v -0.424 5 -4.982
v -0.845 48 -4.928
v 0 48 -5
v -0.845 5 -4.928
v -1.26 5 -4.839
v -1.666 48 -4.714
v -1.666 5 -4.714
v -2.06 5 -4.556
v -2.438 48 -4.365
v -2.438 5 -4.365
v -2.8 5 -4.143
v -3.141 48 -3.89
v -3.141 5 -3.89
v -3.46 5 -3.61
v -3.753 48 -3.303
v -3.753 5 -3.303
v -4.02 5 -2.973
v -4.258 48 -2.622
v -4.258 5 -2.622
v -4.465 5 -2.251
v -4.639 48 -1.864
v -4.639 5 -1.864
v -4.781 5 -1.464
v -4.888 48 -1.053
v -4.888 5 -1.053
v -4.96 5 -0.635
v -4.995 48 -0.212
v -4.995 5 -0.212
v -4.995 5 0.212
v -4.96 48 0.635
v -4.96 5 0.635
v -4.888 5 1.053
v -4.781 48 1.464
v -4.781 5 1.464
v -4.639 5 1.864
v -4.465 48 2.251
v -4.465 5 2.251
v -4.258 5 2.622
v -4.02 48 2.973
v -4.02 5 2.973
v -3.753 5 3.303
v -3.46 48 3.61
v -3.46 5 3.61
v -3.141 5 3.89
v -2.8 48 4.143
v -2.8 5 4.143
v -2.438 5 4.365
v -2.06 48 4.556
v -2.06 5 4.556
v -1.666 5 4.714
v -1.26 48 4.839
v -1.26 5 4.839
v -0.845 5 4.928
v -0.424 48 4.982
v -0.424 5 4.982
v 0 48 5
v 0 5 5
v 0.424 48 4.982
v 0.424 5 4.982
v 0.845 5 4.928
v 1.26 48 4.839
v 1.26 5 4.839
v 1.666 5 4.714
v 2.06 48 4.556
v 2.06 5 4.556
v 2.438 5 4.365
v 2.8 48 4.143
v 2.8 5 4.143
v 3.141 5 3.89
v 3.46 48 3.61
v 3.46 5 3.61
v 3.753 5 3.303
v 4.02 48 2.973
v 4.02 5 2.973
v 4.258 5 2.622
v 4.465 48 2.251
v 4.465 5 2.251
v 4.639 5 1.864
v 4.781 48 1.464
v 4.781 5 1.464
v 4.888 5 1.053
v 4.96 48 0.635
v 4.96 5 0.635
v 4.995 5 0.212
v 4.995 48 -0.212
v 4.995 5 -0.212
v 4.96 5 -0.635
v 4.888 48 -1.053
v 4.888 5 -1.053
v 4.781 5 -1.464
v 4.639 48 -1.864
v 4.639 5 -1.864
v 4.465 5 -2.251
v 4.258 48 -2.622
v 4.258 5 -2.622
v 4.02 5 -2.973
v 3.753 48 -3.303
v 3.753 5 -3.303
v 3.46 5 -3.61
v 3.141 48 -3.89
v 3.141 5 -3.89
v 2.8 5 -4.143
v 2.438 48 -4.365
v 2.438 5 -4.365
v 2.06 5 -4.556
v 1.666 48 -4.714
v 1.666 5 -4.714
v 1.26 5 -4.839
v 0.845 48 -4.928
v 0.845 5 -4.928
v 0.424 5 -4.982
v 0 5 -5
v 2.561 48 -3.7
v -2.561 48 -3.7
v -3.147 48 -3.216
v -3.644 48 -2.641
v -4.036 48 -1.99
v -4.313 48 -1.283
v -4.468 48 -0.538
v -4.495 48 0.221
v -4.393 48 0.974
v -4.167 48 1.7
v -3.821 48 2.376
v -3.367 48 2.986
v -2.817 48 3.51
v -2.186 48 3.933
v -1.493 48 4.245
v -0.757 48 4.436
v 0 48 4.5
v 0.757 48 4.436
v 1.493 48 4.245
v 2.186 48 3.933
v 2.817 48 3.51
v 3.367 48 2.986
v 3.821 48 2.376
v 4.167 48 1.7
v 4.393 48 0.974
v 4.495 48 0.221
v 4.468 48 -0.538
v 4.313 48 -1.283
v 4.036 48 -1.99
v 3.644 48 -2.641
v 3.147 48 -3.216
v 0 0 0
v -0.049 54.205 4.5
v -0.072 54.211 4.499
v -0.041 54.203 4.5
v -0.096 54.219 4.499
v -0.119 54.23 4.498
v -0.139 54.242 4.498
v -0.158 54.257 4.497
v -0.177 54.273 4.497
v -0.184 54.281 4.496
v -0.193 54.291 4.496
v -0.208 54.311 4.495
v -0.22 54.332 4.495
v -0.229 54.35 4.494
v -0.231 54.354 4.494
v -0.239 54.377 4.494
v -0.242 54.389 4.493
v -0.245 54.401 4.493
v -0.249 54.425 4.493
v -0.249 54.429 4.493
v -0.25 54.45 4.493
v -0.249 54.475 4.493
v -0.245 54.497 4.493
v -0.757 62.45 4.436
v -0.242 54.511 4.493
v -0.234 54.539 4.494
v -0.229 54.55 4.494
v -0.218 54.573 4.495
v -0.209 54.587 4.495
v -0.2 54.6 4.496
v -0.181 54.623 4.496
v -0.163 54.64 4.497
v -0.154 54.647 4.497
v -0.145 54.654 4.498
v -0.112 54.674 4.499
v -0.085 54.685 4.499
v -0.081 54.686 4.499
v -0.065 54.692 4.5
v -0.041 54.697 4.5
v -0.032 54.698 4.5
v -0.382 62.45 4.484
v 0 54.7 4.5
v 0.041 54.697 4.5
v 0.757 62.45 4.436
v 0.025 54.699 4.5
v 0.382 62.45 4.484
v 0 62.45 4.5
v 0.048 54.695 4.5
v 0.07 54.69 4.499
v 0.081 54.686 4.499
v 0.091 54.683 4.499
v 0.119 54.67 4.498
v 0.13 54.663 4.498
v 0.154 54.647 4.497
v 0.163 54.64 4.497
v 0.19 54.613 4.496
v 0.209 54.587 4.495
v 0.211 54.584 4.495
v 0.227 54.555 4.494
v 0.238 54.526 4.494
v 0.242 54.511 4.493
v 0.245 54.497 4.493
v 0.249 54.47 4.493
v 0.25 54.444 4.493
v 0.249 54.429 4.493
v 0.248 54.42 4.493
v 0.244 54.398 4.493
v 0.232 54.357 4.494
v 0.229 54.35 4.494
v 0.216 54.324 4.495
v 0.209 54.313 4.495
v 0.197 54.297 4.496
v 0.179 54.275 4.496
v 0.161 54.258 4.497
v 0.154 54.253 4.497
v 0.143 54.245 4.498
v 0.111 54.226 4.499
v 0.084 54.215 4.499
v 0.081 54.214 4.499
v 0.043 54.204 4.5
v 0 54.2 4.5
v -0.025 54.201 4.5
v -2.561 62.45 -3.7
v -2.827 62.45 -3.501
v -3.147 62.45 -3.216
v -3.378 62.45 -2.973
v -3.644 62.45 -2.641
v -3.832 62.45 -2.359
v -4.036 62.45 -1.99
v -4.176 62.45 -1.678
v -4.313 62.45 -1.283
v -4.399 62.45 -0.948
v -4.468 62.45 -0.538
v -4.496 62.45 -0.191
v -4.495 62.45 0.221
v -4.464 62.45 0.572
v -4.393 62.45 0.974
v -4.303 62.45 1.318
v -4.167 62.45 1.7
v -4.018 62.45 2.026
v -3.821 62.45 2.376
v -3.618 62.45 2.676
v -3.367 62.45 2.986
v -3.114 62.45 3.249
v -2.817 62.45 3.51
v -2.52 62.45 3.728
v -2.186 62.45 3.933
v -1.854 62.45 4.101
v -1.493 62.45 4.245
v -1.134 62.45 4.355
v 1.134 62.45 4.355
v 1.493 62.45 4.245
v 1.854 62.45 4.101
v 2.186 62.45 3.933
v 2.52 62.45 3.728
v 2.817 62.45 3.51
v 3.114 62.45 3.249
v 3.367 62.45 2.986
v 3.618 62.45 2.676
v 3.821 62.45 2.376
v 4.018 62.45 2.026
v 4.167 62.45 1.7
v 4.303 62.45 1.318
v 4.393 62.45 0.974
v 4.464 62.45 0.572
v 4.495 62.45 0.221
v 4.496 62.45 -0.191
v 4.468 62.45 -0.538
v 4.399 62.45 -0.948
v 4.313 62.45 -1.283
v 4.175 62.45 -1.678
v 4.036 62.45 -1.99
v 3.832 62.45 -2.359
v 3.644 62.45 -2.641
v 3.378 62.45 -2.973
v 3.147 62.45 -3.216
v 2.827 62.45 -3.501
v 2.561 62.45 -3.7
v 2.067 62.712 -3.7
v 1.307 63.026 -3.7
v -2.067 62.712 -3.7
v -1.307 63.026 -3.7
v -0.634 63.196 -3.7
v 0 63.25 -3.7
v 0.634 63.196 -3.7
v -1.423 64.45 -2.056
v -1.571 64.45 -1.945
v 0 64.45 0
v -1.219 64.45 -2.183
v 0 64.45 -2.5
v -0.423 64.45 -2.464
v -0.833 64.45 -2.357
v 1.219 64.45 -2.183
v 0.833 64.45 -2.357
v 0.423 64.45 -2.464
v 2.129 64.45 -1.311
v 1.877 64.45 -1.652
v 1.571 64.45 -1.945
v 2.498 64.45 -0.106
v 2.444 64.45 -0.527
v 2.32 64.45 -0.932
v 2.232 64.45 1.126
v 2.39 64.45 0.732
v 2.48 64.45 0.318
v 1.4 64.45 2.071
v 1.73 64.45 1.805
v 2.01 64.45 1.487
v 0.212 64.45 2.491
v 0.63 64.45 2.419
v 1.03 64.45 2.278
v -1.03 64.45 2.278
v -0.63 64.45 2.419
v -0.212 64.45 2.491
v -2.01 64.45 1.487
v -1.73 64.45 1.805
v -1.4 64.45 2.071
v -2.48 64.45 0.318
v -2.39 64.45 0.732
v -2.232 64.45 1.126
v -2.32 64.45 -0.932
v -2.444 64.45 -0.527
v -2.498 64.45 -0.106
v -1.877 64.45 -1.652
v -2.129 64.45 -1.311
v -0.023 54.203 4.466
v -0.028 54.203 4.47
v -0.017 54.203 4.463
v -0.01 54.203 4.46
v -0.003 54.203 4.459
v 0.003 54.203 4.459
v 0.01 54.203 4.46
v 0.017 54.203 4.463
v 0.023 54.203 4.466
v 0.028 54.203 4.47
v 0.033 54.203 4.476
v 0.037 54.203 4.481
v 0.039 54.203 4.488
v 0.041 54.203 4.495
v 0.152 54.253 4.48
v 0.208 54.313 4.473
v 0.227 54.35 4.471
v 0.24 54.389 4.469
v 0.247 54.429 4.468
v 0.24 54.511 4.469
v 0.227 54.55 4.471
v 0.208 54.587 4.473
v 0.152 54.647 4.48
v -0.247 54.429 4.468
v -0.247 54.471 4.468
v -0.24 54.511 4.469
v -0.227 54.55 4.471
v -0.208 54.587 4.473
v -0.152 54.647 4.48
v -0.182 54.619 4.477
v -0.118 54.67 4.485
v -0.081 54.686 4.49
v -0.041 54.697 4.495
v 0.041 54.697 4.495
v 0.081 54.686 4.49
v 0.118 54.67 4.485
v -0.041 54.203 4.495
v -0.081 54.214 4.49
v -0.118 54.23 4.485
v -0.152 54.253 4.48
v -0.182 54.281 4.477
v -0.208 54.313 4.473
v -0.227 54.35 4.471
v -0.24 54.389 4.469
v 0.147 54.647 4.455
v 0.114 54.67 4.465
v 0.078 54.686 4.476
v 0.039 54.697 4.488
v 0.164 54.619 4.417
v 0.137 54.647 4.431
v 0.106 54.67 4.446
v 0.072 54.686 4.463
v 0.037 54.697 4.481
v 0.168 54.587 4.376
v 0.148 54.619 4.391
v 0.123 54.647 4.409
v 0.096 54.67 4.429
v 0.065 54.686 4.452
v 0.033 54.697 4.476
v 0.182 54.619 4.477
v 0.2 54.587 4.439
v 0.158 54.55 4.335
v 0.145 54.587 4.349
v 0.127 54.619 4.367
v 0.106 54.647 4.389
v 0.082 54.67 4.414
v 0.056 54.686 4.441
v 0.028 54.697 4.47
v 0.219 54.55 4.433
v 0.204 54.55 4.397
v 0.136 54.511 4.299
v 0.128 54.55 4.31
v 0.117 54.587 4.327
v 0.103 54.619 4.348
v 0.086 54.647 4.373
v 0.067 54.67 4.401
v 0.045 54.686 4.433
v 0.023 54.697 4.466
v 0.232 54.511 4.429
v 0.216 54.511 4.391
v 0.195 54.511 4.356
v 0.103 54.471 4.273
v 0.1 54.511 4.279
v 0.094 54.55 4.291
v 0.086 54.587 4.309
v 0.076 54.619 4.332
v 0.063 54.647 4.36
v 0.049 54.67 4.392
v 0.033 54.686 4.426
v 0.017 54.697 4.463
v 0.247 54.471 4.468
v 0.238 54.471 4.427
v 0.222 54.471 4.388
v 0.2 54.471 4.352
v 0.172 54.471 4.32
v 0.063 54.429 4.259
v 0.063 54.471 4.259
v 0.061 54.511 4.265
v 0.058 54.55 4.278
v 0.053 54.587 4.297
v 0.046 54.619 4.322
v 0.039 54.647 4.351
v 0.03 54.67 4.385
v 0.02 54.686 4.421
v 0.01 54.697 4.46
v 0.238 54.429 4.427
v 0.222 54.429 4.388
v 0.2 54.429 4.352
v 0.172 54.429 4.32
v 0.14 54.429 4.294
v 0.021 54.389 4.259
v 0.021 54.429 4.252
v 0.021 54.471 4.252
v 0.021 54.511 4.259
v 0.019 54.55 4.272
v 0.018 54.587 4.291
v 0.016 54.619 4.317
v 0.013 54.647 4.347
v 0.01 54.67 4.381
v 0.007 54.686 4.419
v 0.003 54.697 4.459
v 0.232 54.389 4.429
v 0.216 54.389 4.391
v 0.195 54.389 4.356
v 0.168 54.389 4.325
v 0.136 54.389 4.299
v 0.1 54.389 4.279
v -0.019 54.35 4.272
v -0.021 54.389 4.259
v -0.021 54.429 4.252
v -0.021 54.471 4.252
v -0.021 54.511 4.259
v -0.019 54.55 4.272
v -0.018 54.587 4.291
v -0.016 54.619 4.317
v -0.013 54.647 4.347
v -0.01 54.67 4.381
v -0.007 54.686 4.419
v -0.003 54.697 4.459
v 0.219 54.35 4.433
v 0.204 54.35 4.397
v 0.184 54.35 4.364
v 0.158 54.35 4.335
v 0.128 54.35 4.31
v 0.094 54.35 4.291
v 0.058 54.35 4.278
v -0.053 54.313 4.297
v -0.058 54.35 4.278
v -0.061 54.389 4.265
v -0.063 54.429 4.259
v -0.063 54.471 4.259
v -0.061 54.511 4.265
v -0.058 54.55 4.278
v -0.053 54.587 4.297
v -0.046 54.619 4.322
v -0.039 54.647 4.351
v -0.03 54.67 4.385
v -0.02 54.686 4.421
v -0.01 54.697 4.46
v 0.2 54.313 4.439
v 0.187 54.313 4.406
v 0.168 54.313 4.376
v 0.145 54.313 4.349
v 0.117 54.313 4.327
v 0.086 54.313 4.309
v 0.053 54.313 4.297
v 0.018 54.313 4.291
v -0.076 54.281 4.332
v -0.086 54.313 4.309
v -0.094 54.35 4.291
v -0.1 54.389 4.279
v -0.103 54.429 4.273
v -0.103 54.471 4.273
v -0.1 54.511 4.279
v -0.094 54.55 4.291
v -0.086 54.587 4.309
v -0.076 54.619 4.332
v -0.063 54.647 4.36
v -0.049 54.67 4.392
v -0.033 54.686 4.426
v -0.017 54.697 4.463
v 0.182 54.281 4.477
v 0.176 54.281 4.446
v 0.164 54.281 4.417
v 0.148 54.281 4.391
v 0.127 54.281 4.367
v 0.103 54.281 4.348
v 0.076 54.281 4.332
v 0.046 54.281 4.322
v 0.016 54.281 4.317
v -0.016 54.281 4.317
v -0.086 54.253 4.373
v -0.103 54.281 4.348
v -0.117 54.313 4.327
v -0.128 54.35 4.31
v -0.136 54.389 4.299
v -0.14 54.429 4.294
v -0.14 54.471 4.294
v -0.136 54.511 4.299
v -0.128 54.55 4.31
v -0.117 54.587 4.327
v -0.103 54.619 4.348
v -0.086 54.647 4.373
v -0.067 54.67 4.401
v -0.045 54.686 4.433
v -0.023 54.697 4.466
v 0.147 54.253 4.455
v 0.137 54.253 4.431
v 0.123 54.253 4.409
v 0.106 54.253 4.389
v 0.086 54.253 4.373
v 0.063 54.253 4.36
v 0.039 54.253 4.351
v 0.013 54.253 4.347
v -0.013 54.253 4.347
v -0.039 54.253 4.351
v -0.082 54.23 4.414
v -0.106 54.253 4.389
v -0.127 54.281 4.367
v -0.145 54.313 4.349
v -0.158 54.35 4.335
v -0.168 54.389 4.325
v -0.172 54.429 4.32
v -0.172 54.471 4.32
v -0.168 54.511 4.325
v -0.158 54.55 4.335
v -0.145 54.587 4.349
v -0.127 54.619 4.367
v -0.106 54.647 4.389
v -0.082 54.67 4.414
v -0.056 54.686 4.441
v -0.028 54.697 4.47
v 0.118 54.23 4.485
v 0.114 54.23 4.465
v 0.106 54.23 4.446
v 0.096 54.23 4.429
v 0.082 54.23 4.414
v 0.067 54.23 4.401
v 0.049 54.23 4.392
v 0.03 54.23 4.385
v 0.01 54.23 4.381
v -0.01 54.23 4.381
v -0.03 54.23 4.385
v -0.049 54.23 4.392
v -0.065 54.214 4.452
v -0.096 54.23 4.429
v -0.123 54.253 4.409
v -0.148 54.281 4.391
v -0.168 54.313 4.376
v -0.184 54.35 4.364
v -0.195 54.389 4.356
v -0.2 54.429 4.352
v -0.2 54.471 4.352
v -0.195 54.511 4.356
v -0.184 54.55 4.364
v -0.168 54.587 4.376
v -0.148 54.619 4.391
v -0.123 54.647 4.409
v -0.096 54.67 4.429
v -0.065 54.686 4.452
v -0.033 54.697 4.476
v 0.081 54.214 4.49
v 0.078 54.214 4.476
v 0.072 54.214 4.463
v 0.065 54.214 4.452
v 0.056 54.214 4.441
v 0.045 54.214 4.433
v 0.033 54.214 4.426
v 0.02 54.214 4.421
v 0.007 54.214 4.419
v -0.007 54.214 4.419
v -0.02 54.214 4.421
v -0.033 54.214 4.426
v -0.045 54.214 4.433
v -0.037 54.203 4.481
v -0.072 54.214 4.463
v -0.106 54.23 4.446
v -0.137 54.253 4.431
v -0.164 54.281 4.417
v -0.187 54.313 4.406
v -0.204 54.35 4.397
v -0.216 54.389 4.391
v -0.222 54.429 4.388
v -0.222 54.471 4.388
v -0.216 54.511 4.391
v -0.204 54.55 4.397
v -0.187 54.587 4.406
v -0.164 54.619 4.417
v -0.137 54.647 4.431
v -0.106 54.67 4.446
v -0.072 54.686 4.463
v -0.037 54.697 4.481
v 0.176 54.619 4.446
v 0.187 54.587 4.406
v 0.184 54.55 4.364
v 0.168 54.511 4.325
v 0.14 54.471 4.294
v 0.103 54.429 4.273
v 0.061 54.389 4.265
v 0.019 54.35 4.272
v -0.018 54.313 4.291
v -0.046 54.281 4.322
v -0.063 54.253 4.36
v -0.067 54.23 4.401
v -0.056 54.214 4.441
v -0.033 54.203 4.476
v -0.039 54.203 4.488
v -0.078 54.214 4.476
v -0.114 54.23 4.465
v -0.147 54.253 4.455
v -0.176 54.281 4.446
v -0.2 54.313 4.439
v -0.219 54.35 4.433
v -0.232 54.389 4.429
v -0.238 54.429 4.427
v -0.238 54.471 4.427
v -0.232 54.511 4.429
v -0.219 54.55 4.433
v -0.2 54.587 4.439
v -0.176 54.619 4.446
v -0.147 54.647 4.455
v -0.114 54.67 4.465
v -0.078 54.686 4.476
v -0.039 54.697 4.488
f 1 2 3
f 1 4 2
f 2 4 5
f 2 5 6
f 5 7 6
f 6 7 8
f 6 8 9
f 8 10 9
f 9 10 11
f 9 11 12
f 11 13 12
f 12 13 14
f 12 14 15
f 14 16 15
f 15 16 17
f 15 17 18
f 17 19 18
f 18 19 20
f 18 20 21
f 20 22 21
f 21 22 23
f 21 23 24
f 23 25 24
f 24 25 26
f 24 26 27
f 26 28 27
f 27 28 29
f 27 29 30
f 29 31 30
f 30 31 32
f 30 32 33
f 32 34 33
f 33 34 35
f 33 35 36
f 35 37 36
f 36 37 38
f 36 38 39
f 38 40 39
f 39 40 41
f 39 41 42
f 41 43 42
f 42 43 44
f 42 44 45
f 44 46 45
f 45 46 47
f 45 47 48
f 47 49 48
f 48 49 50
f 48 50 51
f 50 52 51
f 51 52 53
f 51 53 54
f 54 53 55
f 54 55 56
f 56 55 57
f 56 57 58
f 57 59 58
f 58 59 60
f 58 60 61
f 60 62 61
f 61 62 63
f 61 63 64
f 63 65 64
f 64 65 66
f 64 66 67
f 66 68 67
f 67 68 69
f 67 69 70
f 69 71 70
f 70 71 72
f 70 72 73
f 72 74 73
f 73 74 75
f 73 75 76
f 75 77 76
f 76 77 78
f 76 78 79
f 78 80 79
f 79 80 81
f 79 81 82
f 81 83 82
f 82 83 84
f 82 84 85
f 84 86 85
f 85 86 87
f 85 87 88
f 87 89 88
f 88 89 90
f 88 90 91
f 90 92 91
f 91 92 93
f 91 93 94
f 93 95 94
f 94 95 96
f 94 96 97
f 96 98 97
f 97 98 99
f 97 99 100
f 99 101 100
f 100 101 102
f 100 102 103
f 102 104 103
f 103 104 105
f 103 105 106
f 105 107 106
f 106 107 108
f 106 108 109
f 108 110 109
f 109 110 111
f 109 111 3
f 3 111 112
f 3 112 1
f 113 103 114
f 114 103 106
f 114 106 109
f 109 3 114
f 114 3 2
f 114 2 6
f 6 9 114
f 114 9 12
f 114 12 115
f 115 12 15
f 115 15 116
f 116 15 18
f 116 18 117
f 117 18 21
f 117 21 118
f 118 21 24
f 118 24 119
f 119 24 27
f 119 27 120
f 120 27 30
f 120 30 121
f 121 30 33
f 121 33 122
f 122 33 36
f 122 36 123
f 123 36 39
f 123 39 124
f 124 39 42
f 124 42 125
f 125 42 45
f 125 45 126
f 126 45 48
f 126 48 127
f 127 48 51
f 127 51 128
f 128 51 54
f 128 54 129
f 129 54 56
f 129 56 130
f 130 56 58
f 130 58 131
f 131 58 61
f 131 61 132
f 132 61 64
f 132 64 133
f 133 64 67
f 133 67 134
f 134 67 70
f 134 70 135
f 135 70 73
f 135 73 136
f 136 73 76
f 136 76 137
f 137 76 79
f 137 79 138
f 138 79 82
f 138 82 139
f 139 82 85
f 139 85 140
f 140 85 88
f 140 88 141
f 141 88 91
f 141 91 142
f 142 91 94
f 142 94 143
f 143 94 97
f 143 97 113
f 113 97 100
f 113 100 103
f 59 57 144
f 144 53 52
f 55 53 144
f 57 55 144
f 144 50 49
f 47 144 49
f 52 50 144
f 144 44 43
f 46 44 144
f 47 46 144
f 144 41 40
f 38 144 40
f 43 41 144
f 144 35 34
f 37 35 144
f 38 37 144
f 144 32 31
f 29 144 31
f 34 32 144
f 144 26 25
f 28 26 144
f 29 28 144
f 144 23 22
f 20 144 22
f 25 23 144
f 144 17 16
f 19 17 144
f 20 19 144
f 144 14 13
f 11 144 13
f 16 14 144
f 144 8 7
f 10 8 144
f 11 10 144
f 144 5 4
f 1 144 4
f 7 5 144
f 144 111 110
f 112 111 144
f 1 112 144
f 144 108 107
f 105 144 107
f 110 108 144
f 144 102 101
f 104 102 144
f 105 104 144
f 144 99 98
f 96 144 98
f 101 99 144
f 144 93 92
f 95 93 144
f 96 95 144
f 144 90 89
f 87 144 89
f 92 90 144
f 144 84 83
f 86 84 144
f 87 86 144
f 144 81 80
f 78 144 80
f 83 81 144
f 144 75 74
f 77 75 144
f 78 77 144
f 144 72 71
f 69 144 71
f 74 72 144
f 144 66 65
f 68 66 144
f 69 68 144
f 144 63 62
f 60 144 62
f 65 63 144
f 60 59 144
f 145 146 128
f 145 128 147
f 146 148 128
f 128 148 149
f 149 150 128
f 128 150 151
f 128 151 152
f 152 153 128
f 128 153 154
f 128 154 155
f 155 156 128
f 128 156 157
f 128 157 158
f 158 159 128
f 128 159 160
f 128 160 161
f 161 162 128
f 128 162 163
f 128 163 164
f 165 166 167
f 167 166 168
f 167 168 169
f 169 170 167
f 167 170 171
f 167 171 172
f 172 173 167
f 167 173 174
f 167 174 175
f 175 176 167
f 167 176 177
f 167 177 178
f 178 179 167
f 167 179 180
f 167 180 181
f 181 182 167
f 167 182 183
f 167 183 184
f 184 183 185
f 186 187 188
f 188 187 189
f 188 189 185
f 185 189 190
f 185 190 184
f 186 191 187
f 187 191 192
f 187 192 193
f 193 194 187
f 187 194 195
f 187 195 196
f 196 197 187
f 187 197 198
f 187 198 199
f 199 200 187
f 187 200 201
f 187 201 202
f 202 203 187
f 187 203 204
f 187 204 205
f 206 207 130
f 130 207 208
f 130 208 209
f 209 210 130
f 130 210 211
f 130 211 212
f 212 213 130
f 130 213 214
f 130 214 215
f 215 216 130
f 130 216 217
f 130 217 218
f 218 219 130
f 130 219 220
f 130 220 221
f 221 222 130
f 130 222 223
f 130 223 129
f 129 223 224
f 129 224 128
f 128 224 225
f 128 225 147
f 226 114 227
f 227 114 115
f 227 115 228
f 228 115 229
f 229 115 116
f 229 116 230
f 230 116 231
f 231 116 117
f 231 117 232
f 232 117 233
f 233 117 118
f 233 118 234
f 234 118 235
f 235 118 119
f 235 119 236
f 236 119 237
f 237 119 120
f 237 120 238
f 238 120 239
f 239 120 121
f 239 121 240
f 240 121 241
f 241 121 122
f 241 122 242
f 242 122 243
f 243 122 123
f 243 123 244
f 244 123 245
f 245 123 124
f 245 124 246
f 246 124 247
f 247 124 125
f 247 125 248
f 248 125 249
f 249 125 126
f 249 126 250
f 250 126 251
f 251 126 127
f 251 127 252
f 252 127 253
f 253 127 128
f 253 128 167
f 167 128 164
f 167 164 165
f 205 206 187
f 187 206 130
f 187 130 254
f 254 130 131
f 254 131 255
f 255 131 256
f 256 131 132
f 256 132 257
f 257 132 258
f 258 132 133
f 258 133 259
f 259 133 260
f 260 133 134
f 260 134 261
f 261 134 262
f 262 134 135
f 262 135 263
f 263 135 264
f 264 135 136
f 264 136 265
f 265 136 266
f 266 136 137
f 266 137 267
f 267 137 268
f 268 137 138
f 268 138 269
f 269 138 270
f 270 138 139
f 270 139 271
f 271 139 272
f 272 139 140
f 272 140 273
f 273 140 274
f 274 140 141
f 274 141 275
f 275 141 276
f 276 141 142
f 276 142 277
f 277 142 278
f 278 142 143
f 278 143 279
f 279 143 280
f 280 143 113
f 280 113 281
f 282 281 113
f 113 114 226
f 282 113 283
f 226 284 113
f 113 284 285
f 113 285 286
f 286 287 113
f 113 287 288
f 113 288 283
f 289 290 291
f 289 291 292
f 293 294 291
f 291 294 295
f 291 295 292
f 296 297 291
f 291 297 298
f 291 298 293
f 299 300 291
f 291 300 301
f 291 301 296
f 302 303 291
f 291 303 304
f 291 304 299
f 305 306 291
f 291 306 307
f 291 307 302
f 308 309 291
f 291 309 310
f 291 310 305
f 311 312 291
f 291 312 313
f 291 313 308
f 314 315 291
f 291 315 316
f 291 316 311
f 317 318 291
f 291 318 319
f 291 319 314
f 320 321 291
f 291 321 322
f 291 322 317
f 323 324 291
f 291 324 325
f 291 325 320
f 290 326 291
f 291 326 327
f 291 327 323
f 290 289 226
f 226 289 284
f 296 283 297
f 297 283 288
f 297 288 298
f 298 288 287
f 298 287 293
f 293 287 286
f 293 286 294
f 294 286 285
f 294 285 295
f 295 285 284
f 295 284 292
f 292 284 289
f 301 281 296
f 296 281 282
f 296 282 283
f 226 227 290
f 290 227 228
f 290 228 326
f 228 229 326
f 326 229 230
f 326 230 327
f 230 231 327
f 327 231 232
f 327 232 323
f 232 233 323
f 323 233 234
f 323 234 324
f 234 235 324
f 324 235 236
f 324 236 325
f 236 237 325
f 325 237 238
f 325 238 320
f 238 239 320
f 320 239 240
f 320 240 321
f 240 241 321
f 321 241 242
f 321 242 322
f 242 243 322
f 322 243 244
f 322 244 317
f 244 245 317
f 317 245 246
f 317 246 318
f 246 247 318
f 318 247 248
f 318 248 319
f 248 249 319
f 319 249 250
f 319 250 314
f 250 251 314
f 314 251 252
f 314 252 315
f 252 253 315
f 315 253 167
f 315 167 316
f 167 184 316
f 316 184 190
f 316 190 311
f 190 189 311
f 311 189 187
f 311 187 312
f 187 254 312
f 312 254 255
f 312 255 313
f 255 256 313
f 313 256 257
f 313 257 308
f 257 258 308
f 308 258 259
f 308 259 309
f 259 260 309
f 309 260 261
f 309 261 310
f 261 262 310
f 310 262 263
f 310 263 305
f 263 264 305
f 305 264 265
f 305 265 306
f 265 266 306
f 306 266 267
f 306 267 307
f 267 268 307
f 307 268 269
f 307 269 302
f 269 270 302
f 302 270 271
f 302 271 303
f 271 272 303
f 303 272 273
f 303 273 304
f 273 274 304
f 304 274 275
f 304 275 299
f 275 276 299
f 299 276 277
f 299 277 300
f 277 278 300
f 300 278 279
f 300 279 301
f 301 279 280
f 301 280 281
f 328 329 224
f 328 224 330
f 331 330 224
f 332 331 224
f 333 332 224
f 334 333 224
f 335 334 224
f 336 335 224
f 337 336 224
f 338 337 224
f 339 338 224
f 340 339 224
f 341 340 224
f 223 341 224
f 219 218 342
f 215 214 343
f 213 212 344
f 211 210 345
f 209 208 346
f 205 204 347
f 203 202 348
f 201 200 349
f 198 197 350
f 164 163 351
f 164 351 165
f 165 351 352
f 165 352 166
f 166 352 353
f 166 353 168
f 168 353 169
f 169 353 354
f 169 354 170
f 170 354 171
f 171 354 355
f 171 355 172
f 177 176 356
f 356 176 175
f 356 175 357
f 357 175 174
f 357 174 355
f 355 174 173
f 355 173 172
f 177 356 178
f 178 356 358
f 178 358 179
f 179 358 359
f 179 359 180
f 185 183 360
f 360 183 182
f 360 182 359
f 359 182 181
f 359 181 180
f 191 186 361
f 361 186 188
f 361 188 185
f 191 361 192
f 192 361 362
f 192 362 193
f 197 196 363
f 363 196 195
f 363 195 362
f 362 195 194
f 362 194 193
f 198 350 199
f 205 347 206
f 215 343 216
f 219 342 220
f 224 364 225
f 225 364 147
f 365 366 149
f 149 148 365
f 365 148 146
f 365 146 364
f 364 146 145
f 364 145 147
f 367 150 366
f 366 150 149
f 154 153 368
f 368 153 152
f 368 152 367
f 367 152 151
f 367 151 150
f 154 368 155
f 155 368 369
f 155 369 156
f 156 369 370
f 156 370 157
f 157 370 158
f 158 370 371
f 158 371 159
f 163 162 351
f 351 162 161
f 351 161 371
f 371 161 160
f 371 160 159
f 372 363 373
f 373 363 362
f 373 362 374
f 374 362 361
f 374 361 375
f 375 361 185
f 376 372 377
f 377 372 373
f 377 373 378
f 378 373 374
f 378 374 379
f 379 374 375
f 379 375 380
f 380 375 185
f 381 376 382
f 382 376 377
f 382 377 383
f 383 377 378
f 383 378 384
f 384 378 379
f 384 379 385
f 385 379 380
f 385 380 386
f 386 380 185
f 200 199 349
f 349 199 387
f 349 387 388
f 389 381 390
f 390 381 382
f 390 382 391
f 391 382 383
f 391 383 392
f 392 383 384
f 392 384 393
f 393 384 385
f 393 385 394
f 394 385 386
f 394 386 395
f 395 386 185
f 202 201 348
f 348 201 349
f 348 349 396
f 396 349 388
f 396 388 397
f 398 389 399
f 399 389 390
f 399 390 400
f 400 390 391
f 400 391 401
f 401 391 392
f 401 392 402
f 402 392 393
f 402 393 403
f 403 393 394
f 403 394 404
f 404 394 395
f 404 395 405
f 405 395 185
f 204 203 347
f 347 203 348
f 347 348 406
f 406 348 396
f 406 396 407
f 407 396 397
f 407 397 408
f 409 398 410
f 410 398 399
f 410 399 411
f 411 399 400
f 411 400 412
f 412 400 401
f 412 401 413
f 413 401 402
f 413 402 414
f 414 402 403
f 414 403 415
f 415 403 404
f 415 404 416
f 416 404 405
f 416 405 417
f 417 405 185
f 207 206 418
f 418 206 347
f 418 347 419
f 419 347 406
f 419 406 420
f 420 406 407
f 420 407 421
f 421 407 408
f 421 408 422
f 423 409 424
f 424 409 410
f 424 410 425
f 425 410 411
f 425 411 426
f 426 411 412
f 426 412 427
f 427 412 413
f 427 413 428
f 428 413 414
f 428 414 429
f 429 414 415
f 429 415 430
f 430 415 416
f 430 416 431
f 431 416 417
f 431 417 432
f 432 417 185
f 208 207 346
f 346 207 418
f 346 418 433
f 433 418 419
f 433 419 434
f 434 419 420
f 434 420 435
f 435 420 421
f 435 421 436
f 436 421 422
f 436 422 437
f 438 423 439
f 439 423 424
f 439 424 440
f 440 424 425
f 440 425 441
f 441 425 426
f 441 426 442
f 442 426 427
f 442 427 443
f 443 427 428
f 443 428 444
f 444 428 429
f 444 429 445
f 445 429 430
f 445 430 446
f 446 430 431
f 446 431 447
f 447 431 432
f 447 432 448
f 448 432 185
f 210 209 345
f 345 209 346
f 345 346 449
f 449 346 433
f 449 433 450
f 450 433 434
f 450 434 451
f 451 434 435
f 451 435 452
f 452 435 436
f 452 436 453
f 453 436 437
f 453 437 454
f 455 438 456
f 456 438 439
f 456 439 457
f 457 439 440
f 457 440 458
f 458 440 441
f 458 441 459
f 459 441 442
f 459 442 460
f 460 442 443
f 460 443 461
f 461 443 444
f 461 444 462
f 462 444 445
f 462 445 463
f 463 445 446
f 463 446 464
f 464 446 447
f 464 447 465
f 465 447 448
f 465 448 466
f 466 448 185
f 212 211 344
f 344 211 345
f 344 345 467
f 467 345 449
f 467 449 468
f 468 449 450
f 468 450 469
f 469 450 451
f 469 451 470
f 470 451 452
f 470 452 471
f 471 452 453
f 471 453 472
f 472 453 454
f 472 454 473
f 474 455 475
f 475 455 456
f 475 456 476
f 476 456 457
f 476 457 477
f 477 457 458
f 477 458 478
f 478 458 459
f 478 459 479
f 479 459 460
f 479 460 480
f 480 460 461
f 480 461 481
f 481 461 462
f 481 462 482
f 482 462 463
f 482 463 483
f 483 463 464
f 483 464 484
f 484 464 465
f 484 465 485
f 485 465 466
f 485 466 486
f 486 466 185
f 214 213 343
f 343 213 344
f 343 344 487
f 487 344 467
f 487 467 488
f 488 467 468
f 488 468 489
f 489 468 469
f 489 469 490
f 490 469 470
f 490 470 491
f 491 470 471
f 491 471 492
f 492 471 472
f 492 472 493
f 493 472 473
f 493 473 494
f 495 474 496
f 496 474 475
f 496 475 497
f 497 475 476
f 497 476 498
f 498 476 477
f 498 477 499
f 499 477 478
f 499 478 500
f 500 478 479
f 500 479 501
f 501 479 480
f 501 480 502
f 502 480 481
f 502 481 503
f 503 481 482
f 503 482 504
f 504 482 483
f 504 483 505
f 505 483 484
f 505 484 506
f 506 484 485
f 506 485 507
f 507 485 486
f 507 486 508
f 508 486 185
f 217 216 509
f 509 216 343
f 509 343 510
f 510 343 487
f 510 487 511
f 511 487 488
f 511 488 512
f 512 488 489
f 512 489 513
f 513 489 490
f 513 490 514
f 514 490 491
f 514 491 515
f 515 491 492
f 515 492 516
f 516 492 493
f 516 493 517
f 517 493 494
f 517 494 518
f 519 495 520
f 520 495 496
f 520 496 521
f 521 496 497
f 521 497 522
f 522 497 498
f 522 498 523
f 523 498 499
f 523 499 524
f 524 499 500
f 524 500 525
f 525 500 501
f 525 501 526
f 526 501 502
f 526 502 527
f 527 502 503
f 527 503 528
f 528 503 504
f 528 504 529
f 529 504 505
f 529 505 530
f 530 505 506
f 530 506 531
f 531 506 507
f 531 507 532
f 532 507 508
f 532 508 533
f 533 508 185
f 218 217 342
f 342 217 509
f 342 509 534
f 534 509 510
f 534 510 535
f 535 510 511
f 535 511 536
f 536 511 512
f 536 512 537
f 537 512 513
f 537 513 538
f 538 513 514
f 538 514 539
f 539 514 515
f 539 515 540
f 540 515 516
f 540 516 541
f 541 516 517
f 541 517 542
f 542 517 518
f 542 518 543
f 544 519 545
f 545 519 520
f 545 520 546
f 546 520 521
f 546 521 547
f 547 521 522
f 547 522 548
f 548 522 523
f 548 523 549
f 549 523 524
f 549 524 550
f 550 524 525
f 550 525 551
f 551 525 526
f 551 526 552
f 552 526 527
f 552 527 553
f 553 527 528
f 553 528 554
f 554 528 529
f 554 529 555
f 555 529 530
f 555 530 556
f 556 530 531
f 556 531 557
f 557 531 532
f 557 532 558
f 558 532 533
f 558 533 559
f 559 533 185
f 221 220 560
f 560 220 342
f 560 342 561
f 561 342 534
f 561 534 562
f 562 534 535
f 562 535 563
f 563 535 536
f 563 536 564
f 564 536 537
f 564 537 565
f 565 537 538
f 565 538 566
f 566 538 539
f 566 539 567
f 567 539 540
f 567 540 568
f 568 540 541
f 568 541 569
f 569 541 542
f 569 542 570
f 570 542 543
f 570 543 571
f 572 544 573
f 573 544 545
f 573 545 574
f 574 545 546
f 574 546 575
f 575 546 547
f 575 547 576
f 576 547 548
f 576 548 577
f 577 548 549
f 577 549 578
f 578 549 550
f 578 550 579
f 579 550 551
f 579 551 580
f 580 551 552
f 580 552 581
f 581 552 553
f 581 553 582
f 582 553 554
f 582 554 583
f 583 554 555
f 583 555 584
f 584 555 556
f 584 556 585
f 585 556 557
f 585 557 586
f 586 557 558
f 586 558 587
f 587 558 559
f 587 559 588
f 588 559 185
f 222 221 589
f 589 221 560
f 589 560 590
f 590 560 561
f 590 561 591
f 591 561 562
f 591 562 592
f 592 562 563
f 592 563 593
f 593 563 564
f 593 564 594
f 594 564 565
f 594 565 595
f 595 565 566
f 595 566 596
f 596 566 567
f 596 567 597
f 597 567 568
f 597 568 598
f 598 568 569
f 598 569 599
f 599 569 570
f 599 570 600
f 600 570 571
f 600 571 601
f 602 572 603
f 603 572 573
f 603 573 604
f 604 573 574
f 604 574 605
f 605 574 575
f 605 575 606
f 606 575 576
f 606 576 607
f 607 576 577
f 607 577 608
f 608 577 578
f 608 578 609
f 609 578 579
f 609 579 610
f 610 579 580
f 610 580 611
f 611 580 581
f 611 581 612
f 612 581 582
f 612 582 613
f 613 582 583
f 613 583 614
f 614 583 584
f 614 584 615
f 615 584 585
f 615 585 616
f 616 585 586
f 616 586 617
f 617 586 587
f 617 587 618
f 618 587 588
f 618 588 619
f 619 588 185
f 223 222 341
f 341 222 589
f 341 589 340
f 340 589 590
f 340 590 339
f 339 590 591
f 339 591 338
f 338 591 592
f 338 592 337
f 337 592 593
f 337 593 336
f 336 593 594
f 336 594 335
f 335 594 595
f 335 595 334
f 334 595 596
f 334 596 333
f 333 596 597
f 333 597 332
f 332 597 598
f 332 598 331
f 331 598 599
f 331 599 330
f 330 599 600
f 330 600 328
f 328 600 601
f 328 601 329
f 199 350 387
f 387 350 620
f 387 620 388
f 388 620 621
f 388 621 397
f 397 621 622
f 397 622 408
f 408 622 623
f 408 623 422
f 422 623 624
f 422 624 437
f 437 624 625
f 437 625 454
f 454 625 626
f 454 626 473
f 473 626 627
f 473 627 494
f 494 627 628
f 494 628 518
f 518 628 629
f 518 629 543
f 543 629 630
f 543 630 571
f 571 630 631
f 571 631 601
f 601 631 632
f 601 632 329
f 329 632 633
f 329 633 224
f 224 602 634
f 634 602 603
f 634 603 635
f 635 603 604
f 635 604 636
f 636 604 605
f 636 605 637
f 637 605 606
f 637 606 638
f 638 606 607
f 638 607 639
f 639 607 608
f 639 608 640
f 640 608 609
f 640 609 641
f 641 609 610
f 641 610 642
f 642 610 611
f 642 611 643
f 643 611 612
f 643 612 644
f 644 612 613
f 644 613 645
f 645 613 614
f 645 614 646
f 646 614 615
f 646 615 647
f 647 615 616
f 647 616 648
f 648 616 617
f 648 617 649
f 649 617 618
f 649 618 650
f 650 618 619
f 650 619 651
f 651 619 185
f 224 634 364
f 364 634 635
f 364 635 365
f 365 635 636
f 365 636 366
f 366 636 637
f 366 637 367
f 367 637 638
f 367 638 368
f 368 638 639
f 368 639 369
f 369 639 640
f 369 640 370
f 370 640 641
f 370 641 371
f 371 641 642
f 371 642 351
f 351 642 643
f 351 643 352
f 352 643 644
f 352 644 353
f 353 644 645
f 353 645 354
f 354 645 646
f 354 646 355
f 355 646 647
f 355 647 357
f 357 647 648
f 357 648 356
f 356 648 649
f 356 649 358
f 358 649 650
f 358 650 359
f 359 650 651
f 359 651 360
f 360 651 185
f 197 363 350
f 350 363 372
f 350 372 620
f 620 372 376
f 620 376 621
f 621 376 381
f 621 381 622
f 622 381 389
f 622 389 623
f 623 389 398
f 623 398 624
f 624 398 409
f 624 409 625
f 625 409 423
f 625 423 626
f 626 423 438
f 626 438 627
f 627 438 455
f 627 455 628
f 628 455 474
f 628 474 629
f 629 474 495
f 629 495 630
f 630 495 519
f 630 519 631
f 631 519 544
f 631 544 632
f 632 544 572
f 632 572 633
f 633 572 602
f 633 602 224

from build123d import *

# Parameters (mm, degrees)
SKETCH1_R           = 5
BOSS_EXTRUDE1_DEPTH = 48
CHAMFER1_SIZE       = 5
BOSS_EXTRUDE2_DEPTH = 16.45


with BuildPart() as part:
    # Sketch1 → Boss-Extrude1 (new body)
    with BuildSketch(Plane(origin=(0, 0, 0), x_dir=(1, 0, 0), z_dir=(0, 1, 0))):
        with Locations(Location((0, 0, 0), (0, 0, 270))):
            Circle(SKETCH1_R)
    extrude(amount=BOSS_EXTRUDE1_DEPTH)

    # Chamfer1
    chamfer1_edges = [part.edges().sort_by_distance(p)[0] for p in [
        (0, 0, -5),
    ]]
    chamfer(chamfer1_edges, length=CHAMFER1_SIZE)

    # Sketch2 → Boss-Extrude2 (add)
    with BuildSketch(Plane(origin=(0, 48, 0), x_dir=(1, 0, 0), z_dir=(0, 1, 0))):
        with BuildLine():
            Line((-2.561249695, 3.7), (2.561249695, 3.7))
            ThreePointArc((2.561249695, 3.7), (0, -4.5), (-2.561249695, 3.7))
        make_face()
    extrude(amount=BOSS_EXTRUDE2_DEPTH)

    # Chamfer2: read off the stored shape, not the designer's step
    # Chamfer2 outline → Chamfer2 (revolve, cut)
    with BuildSketch(Plane.XY):
        Polygon((4.5, 64.45), (2.5, 64.45), (4.5, 62.45), align=None)
    revolve(axis=Axis((0, 0, 0), (0, 1, 0)), mode=Mode.SUBTRACT)

    # Sketch3 → Cut-Revolve1 (revolve, cut)
    with BuildSketch(Plane(origin=(0, 0, 0), x_dir=(0, 0, -1), z_dir=(1, 0, 0))):
        with BuildLine():
            Line((-4.5, 54.2), (-4.5, 54.7))
            ThreePointArc((-4.5, 54.7), (-4.25, 54.45), (-4.5, 54.2))
        make_face()
    revolve(axis=Axis((0, 54.2, 4.5), (0, 1, 0)), mode=Mode.SUBTRACT)


solid = part.part
